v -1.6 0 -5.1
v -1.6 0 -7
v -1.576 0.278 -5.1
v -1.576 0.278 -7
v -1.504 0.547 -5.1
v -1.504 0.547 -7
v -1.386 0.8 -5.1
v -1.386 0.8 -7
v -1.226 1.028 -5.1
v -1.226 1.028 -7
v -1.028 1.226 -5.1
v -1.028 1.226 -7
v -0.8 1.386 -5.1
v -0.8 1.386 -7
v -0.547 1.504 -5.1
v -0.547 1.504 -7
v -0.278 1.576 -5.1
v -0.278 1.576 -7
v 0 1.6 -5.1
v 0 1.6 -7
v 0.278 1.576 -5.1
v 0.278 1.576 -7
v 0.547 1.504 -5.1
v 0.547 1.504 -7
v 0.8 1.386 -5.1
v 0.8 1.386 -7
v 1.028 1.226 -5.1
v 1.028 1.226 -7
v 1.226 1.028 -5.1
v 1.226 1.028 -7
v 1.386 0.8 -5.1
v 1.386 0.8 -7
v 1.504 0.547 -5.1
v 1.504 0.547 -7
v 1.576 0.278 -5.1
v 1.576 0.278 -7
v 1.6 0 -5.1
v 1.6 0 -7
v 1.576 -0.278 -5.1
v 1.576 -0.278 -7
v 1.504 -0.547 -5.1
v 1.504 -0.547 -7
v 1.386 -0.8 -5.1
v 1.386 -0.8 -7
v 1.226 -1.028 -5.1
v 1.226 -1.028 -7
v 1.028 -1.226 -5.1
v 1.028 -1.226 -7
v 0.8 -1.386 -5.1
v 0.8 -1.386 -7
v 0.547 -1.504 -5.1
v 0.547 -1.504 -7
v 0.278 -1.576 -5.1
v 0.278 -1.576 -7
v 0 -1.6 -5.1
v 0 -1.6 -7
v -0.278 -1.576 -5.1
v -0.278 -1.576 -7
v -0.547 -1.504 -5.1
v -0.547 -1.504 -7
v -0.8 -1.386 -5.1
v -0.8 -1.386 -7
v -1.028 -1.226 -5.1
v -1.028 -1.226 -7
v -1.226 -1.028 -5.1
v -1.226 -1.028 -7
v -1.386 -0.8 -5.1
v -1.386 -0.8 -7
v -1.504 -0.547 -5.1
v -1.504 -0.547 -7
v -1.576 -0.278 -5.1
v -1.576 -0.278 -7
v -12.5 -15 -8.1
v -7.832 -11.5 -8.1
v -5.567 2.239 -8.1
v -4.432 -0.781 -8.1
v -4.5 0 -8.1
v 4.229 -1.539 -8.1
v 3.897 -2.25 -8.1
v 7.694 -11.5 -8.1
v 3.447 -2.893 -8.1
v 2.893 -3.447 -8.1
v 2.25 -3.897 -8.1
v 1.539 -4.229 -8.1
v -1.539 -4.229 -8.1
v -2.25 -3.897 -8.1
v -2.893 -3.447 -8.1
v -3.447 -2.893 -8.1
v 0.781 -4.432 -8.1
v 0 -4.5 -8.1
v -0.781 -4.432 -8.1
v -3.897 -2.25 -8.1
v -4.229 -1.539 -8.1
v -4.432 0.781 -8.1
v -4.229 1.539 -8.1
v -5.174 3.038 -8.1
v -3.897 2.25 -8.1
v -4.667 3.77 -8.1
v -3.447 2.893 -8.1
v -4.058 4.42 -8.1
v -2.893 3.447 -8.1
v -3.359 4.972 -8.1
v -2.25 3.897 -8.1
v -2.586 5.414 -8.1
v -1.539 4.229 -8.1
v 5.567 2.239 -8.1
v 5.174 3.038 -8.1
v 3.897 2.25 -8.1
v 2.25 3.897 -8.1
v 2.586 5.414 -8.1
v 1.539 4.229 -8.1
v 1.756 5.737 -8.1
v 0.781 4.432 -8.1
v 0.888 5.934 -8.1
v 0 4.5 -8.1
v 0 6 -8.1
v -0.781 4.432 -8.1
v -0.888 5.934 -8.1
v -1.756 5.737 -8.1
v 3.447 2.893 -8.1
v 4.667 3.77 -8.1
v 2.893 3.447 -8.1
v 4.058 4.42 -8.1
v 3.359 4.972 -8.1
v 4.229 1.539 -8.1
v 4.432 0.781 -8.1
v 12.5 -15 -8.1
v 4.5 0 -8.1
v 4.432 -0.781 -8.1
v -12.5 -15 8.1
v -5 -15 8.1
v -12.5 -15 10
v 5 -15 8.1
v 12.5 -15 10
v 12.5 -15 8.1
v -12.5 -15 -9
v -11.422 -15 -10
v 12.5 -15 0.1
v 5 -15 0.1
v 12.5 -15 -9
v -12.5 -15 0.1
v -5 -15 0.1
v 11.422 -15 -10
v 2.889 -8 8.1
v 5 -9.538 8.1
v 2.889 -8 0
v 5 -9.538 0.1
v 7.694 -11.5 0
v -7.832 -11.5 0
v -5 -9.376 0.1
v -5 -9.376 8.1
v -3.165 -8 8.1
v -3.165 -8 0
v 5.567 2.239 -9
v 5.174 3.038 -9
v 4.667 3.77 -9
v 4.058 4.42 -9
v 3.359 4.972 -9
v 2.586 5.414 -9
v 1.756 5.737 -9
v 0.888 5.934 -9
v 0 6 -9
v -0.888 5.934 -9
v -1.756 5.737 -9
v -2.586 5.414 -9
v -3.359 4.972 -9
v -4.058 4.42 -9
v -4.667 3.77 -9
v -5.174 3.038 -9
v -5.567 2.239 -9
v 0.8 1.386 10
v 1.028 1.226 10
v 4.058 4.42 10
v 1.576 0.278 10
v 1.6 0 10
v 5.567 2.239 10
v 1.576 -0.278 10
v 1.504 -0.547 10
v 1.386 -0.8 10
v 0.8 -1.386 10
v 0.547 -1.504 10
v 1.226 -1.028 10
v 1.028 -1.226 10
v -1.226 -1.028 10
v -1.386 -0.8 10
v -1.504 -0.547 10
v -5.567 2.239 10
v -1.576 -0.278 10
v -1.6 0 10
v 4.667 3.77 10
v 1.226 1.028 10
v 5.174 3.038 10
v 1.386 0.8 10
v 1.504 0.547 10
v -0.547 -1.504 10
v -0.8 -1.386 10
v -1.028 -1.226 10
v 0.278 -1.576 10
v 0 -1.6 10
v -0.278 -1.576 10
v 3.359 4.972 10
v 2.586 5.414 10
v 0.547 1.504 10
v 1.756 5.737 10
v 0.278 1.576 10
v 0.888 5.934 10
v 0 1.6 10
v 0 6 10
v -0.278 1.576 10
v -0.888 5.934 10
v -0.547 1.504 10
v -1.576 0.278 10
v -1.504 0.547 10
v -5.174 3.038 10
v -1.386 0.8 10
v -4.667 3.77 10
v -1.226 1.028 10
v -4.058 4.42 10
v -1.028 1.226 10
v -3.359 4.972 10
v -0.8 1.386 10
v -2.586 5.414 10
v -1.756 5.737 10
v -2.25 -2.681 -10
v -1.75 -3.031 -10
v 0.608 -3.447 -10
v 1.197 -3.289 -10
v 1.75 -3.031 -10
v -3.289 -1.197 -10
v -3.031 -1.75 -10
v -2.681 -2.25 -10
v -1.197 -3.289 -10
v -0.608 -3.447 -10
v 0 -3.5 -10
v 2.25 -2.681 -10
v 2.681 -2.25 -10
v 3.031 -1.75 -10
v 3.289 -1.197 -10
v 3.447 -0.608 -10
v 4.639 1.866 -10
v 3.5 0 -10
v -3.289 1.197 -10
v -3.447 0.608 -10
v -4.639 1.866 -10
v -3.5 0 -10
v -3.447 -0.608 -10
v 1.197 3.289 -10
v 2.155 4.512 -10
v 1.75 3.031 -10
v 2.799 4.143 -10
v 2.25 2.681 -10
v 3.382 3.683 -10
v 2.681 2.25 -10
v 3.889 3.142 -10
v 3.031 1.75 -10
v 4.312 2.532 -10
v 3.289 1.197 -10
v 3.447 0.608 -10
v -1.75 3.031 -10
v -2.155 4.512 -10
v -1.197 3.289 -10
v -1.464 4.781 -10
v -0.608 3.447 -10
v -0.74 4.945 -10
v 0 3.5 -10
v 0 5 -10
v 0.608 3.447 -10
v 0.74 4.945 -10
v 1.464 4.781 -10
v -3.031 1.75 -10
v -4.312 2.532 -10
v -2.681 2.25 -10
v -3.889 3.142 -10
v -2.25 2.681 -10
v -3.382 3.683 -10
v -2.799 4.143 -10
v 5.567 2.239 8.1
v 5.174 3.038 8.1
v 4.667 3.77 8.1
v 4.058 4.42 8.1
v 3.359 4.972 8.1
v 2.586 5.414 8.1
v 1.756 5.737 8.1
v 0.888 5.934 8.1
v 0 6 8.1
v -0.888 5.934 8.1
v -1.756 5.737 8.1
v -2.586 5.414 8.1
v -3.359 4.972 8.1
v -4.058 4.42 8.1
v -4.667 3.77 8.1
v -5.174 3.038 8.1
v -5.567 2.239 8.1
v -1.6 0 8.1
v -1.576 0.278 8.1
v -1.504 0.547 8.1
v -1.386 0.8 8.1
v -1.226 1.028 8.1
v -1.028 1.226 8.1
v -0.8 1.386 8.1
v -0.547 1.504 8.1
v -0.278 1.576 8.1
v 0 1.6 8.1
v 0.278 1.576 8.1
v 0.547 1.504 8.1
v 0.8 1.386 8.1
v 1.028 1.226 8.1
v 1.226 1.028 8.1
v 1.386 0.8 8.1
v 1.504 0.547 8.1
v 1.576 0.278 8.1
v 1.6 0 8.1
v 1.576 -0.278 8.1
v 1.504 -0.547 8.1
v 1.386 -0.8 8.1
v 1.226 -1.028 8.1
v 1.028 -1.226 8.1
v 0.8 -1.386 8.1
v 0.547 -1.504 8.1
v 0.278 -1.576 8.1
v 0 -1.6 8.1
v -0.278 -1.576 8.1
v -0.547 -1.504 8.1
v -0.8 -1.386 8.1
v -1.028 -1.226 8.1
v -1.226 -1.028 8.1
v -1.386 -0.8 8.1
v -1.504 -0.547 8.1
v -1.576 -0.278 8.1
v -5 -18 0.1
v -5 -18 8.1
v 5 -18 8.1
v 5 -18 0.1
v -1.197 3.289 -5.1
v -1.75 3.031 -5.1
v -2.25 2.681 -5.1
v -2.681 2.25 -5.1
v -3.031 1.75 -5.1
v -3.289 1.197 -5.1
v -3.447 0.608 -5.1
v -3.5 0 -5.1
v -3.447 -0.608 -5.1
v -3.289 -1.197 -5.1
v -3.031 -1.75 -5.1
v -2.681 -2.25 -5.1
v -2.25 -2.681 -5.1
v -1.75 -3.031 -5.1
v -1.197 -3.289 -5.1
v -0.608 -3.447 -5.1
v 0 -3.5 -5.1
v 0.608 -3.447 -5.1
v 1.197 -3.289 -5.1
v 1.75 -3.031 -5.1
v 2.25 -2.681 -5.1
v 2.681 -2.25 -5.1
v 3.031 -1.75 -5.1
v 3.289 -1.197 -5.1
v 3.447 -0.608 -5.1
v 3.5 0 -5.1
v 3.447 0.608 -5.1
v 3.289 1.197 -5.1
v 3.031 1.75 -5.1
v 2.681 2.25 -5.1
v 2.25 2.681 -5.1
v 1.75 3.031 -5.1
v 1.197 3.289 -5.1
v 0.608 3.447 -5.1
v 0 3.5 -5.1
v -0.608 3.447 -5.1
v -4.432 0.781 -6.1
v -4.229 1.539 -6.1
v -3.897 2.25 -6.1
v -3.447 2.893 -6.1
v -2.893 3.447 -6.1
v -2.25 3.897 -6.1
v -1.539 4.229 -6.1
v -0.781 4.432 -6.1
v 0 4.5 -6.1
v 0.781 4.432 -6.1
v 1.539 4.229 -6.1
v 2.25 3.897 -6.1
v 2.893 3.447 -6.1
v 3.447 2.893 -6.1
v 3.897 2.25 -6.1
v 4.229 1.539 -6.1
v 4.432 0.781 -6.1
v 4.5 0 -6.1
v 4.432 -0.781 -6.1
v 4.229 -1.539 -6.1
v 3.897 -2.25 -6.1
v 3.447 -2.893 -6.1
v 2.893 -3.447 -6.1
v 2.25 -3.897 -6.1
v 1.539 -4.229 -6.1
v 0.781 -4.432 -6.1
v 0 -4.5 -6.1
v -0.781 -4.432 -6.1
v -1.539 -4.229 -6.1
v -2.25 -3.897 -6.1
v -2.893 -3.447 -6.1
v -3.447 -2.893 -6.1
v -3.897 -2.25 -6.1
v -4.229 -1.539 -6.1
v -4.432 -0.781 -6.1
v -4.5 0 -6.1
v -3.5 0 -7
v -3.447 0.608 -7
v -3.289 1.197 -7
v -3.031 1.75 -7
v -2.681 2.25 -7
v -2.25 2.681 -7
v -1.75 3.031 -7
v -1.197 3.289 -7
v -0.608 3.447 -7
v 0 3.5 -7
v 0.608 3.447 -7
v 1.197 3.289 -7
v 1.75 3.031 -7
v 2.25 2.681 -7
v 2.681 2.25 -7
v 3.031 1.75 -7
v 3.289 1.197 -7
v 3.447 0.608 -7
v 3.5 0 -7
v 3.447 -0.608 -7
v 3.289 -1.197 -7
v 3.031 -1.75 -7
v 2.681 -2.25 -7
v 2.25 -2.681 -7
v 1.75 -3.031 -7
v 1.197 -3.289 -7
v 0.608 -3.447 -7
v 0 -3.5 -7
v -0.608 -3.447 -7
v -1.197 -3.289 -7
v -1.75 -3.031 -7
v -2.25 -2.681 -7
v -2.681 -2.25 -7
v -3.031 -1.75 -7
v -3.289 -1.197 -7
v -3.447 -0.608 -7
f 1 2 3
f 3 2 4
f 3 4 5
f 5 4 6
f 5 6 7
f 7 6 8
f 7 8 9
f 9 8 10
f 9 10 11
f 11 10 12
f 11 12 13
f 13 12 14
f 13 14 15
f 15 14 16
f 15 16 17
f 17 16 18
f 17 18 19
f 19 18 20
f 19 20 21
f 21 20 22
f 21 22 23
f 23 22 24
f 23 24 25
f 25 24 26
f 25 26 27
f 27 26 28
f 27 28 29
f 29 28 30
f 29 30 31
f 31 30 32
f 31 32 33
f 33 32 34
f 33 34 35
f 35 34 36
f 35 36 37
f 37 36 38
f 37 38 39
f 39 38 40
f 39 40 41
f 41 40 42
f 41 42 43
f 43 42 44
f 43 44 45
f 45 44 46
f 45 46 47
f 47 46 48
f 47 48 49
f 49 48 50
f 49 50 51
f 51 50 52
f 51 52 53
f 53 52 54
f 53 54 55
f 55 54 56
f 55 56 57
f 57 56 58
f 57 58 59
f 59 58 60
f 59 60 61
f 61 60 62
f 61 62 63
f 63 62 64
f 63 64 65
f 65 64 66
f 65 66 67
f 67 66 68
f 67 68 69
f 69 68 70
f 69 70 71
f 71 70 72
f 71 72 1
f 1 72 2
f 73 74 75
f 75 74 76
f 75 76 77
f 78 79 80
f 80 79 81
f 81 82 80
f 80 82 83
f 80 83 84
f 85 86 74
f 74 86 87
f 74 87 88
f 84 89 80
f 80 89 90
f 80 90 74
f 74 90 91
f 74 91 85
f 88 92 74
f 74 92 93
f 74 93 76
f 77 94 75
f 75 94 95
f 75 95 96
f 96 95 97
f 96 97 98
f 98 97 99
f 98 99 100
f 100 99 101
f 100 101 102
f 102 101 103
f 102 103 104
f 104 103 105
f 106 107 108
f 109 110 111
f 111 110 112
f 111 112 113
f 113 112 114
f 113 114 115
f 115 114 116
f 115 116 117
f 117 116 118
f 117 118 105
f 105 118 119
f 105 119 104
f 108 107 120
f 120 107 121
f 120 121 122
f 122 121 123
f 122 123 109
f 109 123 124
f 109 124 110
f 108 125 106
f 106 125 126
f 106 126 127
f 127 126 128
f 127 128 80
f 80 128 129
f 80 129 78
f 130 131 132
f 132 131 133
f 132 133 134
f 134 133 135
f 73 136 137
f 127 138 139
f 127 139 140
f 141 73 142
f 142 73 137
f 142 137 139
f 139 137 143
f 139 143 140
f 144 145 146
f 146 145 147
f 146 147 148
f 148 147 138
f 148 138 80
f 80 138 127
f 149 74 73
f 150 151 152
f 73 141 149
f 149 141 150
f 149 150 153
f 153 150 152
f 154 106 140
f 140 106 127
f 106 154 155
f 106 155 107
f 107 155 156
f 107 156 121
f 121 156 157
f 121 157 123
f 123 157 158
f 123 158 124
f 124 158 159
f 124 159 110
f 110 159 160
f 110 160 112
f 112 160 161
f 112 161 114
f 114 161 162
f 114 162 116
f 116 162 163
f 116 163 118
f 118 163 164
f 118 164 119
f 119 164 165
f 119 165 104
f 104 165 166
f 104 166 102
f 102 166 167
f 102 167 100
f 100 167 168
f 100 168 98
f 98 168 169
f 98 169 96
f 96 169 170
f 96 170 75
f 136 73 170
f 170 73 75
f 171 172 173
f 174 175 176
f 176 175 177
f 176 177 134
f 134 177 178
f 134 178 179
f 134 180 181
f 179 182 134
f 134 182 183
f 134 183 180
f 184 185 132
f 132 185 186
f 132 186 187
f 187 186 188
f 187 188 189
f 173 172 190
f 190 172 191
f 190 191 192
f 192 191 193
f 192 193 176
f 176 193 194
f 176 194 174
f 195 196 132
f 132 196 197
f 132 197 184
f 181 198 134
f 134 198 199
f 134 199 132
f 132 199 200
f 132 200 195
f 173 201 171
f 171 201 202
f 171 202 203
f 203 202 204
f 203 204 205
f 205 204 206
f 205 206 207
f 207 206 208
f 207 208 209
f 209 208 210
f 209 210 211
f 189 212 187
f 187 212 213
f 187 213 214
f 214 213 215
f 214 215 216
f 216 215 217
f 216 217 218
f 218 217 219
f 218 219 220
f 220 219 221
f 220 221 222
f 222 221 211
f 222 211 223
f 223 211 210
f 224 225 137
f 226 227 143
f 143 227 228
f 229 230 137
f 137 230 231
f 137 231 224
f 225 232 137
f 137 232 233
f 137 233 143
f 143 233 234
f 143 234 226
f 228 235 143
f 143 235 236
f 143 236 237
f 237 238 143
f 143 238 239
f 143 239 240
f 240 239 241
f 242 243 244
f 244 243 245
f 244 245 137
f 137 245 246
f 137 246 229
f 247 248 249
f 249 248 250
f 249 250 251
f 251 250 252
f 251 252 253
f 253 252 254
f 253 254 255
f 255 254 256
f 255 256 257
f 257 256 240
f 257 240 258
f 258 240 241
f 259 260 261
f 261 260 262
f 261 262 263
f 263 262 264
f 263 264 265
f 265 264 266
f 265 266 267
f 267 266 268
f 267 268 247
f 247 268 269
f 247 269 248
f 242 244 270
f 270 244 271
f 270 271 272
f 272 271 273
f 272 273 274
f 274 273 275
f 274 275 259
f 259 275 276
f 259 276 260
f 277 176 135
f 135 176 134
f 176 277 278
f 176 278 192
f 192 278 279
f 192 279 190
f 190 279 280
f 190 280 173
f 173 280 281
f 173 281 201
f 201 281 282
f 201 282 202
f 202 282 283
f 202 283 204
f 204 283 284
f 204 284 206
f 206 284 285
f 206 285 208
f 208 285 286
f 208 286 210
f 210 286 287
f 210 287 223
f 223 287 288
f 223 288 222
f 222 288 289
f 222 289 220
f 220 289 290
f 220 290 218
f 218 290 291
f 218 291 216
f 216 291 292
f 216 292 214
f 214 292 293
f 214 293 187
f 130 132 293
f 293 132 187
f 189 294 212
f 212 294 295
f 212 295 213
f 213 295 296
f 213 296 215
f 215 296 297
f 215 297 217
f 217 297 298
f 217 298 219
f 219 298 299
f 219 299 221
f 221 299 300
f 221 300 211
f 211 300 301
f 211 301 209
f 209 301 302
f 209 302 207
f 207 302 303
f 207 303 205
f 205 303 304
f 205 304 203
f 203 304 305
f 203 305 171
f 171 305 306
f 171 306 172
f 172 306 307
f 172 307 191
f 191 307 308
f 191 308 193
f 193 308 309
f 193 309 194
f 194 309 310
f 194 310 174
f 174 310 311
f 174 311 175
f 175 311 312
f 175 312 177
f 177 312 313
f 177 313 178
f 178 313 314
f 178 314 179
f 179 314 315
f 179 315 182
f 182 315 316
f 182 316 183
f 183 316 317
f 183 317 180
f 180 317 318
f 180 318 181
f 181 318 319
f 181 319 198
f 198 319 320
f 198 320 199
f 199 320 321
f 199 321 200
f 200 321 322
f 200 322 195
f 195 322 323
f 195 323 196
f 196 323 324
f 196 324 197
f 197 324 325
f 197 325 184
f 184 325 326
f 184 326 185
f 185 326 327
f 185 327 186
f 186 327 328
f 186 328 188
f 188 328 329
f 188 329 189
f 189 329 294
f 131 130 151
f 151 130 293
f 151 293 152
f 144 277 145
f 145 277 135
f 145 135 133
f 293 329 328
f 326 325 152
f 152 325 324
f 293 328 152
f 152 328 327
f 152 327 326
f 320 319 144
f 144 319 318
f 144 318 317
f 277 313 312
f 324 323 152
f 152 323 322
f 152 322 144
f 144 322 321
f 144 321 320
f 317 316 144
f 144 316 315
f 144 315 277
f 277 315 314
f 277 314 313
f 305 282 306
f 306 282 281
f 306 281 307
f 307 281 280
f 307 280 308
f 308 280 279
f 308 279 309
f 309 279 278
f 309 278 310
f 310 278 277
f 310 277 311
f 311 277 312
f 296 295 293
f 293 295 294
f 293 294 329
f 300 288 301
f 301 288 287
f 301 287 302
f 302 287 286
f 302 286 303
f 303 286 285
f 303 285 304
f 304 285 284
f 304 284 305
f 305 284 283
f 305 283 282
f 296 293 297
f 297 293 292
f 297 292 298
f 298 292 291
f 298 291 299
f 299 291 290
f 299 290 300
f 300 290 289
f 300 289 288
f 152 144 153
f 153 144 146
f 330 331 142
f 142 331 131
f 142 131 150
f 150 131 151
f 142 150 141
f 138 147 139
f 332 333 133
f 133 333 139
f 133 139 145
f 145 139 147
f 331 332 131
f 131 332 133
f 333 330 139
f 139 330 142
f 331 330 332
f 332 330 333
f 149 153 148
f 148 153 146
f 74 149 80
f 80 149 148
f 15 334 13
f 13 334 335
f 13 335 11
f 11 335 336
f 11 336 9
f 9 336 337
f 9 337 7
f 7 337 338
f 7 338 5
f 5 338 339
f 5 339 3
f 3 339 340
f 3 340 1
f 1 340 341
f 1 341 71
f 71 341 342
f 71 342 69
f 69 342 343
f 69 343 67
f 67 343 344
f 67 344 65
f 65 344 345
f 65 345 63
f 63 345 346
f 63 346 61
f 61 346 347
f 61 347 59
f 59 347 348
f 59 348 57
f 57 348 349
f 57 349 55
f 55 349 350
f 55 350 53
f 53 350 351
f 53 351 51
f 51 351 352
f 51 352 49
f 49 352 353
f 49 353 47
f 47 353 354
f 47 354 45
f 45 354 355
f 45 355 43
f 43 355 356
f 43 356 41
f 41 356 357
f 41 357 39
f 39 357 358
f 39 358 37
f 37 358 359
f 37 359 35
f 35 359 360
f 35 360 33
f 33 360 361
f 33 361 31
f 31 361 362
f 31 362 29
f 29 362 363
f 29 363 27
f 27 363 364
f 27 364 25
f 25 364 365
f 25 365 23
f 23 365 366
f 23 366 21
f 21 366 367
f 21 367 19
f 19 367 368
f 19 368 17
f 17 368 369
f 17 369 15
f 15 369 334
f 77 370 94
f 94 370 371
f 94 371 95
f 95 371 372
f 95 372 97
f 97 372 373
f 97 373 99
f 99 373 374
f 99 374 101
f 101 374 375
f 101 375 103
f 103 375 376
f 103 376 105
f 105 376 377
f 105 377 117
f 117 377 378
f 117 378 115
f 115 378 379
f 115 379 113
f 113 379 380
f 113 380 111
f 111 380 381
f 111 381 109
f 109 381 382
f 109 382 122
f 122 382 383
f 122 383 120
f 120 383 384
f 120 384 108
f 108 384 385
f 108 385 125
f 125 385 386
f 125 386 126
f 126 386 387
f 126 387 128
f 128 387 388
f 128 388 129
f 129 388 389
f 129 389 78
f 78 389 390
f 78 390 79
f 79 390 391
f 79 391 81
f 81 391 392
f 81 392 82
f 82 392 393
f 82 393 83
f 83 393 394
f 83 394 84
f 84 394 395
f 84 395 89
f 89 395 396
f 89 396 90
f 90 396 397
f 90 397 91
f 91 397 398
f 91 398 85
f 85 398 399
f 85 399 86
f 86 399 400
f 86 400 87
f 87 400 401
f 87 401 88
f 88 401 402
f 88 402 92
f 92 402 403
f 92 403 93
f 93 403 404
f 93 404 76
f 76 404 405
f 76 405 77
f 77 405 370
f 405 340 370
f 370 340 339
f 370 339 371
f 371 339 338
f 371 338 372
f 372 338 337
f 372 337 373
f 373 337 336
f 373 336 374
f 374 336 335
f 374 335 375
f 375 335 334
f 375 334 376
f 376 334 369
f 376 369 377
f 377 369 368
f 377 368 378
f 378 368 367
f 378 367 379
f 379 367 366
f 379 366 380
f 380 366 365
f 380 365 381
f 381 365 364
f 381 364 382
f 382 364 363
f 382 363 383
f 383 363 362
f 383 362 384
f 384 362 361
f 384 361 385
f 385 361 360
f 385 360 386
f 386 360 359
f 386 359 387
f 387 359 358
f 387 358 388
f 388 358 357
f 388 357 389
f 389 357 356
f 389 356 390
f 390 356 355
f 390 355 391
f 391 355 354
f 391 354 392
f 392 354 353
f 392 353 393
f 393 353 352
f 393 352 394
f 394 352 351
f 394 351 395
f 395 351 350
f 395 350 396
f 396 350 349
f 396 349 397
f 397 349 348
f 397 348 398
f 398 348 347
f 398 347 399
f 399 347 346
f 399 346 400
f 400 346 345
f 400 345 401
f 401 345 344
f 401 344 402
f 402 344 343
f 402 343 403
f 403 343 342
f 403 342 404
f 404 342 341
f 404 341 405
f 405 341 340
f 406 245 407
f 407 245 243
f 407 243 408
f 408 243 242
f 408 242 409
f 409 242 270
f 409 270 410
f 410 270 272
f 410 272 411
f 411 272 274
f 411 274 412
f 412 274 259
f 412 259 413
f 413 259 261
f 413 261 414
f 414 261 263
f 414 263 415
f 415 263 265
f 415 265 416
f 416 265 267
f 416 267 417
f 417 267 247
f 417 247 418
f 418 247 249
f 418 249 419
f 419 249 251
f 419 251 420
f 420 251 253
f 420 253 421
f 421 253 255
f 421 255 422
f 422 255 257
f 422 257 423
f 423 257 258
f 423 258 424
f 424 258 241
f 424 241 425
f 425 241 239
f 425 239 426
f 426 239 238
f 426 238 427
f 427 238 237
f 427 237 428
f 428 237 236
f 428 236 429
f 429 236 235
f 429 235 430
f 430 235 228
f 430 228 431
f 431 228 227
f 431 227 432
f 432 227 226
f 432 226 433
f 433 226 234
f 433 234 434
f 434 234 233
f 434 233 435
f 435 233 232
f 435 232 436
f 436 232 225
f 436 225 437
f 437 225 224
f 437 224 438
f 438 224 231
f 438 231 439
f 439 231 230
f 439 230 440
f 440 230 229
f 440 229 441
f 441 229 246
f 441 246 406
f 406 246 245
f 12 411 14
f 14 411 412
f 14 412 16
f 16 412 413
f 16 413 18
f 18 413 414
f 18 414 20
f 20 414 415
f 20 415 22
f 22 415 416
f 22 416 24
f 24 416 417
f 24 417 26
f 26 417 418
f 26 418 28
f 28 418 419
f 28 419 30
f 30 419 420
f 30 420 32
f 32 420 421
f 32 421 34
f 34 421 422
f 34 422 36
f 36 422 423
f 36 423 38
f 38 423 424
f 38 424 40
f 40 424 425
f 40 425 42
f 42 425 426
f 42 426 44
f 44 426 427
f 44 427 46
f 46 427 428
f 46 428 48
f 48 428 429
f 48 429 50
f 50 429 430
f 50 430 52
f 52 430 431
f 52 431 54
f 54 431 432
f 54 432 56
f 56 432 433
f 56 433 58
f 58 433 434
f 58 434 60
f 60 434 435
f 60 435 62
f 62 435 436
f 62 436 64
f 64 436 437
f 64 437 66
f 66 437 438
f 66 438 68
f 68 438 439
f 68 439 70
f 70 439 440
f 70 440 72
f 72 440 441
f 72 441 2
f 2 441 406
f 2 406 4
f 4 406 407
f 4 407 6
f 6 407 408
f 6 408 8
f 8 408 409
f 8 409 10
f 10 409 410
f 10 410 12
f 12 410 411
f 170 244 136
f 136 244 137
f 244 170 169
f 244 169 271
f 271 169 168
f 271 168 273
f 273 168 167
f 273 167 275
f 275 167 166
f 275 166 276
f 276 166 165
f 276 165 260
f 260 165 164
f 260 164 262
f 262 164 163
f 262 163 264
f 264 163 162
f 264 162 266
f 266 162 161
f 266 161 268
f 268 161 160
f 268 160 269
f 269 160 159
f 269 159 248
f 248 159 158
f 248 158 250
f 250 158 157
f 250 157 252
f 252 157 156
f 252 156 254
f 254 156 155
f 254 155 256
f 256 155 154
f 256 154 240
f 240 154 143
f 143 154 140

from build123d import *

# Parameters (mm, degrees)
CROQUIS1_R                 = 1.6
SALIENTE_EXTRUIR1_DEPTH    = 10
CORTAR_EXTRUIR1_DEPTH      = 8.1
CORTAR_EXTRUIR1_DEPTH_BACK = 8.1
CORTAR_EXTRUIR2_START      = 8.1
CROQUIS3_OUTSIDE_W         = 34.658
CROQUIS3_OUTSIDE_H         = 30.658
CROQUIS3_OUTSIDE_W_2       = 10
CROQUIS3_OUTSIDE_H_2       = 25.797501395
CORTAR_EXTRUIR2_DEPTH      = 8
CROQUIS4_W                 = 10
CROQUIS4_H                 = 8
SALIENTE_EXTRUIR3_DEPTH    = 3
CORTAR_EXTRUIR3_DEPTH      = 25.088378941
CORTAR_EXTRUIR3_DEPTH_BACK = 25.088378941
CROQUIS5_W                 = 8.1
CROQUIS5_H                 = 3.5
CROQUIS6_R                 = 4.5
CROQUIS6_R_2               = 1.6
SALIENTE_EXTRUIR4_DEPTH    = 3
CHAFL_N1_SIZE              = 1
CROQUIS7_R                 = 3.5
CORTAR_EXTRUIR4_DEPTH      = 3
CHAFL_N2_SIZE              = 1


with BuildPart() as part:
    # Croquis1 → Saliente-Extruir1 (new, symmetric)
    with BuildSketch(Plane.XY):
        with BuildLine():
            Line((-12.5, -15), (-5.566639674, 2.238866395))
            ThreePointArc((-5.566639674, 2.238866395), (0, 6), (5.566639674, 2.238866395))
            Line((5.566639674, 2.238866395), (12.5, -15))
            Line((12.5, -15), (-12.5, -15))
        make_face()
        Circle(CROQUIS1_R, mode=Mode.SUBTRACT)
    extrude(amount=SALIENTE_EXTRUIR1_DEPTH, both=True)

    # Croquis2 → Cortar-Extruir1 (cut, two sides: drawn at the far end of the back side and taken through both)
    with BuildSketch(Plane.XY.offset(-CORTAR_EXTRUIR1_DEPTH_BACK)):
        with BuildLine():
            Line((-12.5, -15), (-7.5, 0))
            ThreePointArc((-7.5, 0), (0, 7.5), (7.5, 0))
            Line((7.5, 0), (12.5, -15))
            Line((12.5, -15), (2.888582809, -8))
            Line((2.888582809, -8), (-3.164835235, -8))
            Line((-3.164835235, -8), (-12.5, -15))
        make_face()
    extrude(amount=CORTAR_EXTRUIR1_DEPTH + CORTAR_EXTRUIR1_DEPTH_BACK, mode=Mode.SUBTRACT)

    # Croquis3 outside → Cortar-Extruir2 (cut)
    with BuildSketch(Plane.XY.offset(CORTAR_EXTRUIR2_START)):
        with Locations((0, -4.5)):
            Rectangle(CROQUIS3_OUTSIDE_W, CROQUIS3_OUTSIDE_H)
        with Locations((0, -2.101249303)):
            Rectangle(CROQUIS3_OUTSIDE_W_2, CROQUIS3_OUTSIDE_H_2, mode=Mode.SUBTRACT)
    extrude(amount=-CORTAR_EXTRUIR2_DEPTH, mode=Mode.SUBTRACT)

    # Croquis4 → Saliente-Extruir3 (add)
    with BuildSketch(Plane.XZ.offset(15)):
        with Locations((0, 4.1)):
            Rectangle(CROQUIS4_W, CROQUIS4_H)
    extrude(amount=SALIENTE_EXTRUIR3_DEPTH)

    # Croquis5 → Cortar-Extruir3 (cut, two sides: drawn at the far end of the back side and taken through both)
    with BuildSketch(Plane(origin=(0, 0, 0), x_dir=(0, 0, -1), z_dir=(1, 0, 0)).offset(-CORTAR_EXTRUIR3_DEPTH_BACK)):
        with Locations((4.05, -9.75)):
            Rectangle(CROQUIS5_W, CROQUIS5_H)
    extrude(amount=CORTAR_EXTRUIR3_DEPTH + CORTAR_EXTRUIR3_DEPTH_BACK, mode=Mode.SUBTRACT)

    # Croquis6 → Saliente-Extruir4 (add)
    with BuildSketch(Plane.XY.offset(-8.1)):
        Circle(CROQUIS6_R)
        Circle(CROQUIS6_R_2, mode=Mode.SUBTRACT)
    extrude(amount=SALIENTE_EXTRUIR4_DEPTH)

    # Chaflán1
    chafl_n1_edges = [part.edges().sort_by_distance(p)[0] for p in [
        (-4.5, 0, -5.1),
    ]]
    chamfer(chafl_n1_edges, length=CHAFL_N1_SIZE)

    # Croquis7 → Cortar-Extruir4 (cut)
    with BuildSketch(Plane(origin=(0, 0, -10), x_dir=(-1, 0, 0), z_dir=(0, 0, -1))):
        Circle(CROQUIS7_R)
    extrude(amount=-CORTAR_EXTRUIR4_DEPTH, mode=Mode.SUBTRACT)

    # Chaflán2
    chafl_n2_edges = [part.edges().sort_by_distance(p)[0] for p in [
        (-9.033319837, -6.380566802, -10),
        (0, 6, -10),
        (9.033319837, -6.380566802, -10),
    ]]
    chamfer(chafl_n2_edges, length=CHAFL_N2_SIZE)


solid = part.part
